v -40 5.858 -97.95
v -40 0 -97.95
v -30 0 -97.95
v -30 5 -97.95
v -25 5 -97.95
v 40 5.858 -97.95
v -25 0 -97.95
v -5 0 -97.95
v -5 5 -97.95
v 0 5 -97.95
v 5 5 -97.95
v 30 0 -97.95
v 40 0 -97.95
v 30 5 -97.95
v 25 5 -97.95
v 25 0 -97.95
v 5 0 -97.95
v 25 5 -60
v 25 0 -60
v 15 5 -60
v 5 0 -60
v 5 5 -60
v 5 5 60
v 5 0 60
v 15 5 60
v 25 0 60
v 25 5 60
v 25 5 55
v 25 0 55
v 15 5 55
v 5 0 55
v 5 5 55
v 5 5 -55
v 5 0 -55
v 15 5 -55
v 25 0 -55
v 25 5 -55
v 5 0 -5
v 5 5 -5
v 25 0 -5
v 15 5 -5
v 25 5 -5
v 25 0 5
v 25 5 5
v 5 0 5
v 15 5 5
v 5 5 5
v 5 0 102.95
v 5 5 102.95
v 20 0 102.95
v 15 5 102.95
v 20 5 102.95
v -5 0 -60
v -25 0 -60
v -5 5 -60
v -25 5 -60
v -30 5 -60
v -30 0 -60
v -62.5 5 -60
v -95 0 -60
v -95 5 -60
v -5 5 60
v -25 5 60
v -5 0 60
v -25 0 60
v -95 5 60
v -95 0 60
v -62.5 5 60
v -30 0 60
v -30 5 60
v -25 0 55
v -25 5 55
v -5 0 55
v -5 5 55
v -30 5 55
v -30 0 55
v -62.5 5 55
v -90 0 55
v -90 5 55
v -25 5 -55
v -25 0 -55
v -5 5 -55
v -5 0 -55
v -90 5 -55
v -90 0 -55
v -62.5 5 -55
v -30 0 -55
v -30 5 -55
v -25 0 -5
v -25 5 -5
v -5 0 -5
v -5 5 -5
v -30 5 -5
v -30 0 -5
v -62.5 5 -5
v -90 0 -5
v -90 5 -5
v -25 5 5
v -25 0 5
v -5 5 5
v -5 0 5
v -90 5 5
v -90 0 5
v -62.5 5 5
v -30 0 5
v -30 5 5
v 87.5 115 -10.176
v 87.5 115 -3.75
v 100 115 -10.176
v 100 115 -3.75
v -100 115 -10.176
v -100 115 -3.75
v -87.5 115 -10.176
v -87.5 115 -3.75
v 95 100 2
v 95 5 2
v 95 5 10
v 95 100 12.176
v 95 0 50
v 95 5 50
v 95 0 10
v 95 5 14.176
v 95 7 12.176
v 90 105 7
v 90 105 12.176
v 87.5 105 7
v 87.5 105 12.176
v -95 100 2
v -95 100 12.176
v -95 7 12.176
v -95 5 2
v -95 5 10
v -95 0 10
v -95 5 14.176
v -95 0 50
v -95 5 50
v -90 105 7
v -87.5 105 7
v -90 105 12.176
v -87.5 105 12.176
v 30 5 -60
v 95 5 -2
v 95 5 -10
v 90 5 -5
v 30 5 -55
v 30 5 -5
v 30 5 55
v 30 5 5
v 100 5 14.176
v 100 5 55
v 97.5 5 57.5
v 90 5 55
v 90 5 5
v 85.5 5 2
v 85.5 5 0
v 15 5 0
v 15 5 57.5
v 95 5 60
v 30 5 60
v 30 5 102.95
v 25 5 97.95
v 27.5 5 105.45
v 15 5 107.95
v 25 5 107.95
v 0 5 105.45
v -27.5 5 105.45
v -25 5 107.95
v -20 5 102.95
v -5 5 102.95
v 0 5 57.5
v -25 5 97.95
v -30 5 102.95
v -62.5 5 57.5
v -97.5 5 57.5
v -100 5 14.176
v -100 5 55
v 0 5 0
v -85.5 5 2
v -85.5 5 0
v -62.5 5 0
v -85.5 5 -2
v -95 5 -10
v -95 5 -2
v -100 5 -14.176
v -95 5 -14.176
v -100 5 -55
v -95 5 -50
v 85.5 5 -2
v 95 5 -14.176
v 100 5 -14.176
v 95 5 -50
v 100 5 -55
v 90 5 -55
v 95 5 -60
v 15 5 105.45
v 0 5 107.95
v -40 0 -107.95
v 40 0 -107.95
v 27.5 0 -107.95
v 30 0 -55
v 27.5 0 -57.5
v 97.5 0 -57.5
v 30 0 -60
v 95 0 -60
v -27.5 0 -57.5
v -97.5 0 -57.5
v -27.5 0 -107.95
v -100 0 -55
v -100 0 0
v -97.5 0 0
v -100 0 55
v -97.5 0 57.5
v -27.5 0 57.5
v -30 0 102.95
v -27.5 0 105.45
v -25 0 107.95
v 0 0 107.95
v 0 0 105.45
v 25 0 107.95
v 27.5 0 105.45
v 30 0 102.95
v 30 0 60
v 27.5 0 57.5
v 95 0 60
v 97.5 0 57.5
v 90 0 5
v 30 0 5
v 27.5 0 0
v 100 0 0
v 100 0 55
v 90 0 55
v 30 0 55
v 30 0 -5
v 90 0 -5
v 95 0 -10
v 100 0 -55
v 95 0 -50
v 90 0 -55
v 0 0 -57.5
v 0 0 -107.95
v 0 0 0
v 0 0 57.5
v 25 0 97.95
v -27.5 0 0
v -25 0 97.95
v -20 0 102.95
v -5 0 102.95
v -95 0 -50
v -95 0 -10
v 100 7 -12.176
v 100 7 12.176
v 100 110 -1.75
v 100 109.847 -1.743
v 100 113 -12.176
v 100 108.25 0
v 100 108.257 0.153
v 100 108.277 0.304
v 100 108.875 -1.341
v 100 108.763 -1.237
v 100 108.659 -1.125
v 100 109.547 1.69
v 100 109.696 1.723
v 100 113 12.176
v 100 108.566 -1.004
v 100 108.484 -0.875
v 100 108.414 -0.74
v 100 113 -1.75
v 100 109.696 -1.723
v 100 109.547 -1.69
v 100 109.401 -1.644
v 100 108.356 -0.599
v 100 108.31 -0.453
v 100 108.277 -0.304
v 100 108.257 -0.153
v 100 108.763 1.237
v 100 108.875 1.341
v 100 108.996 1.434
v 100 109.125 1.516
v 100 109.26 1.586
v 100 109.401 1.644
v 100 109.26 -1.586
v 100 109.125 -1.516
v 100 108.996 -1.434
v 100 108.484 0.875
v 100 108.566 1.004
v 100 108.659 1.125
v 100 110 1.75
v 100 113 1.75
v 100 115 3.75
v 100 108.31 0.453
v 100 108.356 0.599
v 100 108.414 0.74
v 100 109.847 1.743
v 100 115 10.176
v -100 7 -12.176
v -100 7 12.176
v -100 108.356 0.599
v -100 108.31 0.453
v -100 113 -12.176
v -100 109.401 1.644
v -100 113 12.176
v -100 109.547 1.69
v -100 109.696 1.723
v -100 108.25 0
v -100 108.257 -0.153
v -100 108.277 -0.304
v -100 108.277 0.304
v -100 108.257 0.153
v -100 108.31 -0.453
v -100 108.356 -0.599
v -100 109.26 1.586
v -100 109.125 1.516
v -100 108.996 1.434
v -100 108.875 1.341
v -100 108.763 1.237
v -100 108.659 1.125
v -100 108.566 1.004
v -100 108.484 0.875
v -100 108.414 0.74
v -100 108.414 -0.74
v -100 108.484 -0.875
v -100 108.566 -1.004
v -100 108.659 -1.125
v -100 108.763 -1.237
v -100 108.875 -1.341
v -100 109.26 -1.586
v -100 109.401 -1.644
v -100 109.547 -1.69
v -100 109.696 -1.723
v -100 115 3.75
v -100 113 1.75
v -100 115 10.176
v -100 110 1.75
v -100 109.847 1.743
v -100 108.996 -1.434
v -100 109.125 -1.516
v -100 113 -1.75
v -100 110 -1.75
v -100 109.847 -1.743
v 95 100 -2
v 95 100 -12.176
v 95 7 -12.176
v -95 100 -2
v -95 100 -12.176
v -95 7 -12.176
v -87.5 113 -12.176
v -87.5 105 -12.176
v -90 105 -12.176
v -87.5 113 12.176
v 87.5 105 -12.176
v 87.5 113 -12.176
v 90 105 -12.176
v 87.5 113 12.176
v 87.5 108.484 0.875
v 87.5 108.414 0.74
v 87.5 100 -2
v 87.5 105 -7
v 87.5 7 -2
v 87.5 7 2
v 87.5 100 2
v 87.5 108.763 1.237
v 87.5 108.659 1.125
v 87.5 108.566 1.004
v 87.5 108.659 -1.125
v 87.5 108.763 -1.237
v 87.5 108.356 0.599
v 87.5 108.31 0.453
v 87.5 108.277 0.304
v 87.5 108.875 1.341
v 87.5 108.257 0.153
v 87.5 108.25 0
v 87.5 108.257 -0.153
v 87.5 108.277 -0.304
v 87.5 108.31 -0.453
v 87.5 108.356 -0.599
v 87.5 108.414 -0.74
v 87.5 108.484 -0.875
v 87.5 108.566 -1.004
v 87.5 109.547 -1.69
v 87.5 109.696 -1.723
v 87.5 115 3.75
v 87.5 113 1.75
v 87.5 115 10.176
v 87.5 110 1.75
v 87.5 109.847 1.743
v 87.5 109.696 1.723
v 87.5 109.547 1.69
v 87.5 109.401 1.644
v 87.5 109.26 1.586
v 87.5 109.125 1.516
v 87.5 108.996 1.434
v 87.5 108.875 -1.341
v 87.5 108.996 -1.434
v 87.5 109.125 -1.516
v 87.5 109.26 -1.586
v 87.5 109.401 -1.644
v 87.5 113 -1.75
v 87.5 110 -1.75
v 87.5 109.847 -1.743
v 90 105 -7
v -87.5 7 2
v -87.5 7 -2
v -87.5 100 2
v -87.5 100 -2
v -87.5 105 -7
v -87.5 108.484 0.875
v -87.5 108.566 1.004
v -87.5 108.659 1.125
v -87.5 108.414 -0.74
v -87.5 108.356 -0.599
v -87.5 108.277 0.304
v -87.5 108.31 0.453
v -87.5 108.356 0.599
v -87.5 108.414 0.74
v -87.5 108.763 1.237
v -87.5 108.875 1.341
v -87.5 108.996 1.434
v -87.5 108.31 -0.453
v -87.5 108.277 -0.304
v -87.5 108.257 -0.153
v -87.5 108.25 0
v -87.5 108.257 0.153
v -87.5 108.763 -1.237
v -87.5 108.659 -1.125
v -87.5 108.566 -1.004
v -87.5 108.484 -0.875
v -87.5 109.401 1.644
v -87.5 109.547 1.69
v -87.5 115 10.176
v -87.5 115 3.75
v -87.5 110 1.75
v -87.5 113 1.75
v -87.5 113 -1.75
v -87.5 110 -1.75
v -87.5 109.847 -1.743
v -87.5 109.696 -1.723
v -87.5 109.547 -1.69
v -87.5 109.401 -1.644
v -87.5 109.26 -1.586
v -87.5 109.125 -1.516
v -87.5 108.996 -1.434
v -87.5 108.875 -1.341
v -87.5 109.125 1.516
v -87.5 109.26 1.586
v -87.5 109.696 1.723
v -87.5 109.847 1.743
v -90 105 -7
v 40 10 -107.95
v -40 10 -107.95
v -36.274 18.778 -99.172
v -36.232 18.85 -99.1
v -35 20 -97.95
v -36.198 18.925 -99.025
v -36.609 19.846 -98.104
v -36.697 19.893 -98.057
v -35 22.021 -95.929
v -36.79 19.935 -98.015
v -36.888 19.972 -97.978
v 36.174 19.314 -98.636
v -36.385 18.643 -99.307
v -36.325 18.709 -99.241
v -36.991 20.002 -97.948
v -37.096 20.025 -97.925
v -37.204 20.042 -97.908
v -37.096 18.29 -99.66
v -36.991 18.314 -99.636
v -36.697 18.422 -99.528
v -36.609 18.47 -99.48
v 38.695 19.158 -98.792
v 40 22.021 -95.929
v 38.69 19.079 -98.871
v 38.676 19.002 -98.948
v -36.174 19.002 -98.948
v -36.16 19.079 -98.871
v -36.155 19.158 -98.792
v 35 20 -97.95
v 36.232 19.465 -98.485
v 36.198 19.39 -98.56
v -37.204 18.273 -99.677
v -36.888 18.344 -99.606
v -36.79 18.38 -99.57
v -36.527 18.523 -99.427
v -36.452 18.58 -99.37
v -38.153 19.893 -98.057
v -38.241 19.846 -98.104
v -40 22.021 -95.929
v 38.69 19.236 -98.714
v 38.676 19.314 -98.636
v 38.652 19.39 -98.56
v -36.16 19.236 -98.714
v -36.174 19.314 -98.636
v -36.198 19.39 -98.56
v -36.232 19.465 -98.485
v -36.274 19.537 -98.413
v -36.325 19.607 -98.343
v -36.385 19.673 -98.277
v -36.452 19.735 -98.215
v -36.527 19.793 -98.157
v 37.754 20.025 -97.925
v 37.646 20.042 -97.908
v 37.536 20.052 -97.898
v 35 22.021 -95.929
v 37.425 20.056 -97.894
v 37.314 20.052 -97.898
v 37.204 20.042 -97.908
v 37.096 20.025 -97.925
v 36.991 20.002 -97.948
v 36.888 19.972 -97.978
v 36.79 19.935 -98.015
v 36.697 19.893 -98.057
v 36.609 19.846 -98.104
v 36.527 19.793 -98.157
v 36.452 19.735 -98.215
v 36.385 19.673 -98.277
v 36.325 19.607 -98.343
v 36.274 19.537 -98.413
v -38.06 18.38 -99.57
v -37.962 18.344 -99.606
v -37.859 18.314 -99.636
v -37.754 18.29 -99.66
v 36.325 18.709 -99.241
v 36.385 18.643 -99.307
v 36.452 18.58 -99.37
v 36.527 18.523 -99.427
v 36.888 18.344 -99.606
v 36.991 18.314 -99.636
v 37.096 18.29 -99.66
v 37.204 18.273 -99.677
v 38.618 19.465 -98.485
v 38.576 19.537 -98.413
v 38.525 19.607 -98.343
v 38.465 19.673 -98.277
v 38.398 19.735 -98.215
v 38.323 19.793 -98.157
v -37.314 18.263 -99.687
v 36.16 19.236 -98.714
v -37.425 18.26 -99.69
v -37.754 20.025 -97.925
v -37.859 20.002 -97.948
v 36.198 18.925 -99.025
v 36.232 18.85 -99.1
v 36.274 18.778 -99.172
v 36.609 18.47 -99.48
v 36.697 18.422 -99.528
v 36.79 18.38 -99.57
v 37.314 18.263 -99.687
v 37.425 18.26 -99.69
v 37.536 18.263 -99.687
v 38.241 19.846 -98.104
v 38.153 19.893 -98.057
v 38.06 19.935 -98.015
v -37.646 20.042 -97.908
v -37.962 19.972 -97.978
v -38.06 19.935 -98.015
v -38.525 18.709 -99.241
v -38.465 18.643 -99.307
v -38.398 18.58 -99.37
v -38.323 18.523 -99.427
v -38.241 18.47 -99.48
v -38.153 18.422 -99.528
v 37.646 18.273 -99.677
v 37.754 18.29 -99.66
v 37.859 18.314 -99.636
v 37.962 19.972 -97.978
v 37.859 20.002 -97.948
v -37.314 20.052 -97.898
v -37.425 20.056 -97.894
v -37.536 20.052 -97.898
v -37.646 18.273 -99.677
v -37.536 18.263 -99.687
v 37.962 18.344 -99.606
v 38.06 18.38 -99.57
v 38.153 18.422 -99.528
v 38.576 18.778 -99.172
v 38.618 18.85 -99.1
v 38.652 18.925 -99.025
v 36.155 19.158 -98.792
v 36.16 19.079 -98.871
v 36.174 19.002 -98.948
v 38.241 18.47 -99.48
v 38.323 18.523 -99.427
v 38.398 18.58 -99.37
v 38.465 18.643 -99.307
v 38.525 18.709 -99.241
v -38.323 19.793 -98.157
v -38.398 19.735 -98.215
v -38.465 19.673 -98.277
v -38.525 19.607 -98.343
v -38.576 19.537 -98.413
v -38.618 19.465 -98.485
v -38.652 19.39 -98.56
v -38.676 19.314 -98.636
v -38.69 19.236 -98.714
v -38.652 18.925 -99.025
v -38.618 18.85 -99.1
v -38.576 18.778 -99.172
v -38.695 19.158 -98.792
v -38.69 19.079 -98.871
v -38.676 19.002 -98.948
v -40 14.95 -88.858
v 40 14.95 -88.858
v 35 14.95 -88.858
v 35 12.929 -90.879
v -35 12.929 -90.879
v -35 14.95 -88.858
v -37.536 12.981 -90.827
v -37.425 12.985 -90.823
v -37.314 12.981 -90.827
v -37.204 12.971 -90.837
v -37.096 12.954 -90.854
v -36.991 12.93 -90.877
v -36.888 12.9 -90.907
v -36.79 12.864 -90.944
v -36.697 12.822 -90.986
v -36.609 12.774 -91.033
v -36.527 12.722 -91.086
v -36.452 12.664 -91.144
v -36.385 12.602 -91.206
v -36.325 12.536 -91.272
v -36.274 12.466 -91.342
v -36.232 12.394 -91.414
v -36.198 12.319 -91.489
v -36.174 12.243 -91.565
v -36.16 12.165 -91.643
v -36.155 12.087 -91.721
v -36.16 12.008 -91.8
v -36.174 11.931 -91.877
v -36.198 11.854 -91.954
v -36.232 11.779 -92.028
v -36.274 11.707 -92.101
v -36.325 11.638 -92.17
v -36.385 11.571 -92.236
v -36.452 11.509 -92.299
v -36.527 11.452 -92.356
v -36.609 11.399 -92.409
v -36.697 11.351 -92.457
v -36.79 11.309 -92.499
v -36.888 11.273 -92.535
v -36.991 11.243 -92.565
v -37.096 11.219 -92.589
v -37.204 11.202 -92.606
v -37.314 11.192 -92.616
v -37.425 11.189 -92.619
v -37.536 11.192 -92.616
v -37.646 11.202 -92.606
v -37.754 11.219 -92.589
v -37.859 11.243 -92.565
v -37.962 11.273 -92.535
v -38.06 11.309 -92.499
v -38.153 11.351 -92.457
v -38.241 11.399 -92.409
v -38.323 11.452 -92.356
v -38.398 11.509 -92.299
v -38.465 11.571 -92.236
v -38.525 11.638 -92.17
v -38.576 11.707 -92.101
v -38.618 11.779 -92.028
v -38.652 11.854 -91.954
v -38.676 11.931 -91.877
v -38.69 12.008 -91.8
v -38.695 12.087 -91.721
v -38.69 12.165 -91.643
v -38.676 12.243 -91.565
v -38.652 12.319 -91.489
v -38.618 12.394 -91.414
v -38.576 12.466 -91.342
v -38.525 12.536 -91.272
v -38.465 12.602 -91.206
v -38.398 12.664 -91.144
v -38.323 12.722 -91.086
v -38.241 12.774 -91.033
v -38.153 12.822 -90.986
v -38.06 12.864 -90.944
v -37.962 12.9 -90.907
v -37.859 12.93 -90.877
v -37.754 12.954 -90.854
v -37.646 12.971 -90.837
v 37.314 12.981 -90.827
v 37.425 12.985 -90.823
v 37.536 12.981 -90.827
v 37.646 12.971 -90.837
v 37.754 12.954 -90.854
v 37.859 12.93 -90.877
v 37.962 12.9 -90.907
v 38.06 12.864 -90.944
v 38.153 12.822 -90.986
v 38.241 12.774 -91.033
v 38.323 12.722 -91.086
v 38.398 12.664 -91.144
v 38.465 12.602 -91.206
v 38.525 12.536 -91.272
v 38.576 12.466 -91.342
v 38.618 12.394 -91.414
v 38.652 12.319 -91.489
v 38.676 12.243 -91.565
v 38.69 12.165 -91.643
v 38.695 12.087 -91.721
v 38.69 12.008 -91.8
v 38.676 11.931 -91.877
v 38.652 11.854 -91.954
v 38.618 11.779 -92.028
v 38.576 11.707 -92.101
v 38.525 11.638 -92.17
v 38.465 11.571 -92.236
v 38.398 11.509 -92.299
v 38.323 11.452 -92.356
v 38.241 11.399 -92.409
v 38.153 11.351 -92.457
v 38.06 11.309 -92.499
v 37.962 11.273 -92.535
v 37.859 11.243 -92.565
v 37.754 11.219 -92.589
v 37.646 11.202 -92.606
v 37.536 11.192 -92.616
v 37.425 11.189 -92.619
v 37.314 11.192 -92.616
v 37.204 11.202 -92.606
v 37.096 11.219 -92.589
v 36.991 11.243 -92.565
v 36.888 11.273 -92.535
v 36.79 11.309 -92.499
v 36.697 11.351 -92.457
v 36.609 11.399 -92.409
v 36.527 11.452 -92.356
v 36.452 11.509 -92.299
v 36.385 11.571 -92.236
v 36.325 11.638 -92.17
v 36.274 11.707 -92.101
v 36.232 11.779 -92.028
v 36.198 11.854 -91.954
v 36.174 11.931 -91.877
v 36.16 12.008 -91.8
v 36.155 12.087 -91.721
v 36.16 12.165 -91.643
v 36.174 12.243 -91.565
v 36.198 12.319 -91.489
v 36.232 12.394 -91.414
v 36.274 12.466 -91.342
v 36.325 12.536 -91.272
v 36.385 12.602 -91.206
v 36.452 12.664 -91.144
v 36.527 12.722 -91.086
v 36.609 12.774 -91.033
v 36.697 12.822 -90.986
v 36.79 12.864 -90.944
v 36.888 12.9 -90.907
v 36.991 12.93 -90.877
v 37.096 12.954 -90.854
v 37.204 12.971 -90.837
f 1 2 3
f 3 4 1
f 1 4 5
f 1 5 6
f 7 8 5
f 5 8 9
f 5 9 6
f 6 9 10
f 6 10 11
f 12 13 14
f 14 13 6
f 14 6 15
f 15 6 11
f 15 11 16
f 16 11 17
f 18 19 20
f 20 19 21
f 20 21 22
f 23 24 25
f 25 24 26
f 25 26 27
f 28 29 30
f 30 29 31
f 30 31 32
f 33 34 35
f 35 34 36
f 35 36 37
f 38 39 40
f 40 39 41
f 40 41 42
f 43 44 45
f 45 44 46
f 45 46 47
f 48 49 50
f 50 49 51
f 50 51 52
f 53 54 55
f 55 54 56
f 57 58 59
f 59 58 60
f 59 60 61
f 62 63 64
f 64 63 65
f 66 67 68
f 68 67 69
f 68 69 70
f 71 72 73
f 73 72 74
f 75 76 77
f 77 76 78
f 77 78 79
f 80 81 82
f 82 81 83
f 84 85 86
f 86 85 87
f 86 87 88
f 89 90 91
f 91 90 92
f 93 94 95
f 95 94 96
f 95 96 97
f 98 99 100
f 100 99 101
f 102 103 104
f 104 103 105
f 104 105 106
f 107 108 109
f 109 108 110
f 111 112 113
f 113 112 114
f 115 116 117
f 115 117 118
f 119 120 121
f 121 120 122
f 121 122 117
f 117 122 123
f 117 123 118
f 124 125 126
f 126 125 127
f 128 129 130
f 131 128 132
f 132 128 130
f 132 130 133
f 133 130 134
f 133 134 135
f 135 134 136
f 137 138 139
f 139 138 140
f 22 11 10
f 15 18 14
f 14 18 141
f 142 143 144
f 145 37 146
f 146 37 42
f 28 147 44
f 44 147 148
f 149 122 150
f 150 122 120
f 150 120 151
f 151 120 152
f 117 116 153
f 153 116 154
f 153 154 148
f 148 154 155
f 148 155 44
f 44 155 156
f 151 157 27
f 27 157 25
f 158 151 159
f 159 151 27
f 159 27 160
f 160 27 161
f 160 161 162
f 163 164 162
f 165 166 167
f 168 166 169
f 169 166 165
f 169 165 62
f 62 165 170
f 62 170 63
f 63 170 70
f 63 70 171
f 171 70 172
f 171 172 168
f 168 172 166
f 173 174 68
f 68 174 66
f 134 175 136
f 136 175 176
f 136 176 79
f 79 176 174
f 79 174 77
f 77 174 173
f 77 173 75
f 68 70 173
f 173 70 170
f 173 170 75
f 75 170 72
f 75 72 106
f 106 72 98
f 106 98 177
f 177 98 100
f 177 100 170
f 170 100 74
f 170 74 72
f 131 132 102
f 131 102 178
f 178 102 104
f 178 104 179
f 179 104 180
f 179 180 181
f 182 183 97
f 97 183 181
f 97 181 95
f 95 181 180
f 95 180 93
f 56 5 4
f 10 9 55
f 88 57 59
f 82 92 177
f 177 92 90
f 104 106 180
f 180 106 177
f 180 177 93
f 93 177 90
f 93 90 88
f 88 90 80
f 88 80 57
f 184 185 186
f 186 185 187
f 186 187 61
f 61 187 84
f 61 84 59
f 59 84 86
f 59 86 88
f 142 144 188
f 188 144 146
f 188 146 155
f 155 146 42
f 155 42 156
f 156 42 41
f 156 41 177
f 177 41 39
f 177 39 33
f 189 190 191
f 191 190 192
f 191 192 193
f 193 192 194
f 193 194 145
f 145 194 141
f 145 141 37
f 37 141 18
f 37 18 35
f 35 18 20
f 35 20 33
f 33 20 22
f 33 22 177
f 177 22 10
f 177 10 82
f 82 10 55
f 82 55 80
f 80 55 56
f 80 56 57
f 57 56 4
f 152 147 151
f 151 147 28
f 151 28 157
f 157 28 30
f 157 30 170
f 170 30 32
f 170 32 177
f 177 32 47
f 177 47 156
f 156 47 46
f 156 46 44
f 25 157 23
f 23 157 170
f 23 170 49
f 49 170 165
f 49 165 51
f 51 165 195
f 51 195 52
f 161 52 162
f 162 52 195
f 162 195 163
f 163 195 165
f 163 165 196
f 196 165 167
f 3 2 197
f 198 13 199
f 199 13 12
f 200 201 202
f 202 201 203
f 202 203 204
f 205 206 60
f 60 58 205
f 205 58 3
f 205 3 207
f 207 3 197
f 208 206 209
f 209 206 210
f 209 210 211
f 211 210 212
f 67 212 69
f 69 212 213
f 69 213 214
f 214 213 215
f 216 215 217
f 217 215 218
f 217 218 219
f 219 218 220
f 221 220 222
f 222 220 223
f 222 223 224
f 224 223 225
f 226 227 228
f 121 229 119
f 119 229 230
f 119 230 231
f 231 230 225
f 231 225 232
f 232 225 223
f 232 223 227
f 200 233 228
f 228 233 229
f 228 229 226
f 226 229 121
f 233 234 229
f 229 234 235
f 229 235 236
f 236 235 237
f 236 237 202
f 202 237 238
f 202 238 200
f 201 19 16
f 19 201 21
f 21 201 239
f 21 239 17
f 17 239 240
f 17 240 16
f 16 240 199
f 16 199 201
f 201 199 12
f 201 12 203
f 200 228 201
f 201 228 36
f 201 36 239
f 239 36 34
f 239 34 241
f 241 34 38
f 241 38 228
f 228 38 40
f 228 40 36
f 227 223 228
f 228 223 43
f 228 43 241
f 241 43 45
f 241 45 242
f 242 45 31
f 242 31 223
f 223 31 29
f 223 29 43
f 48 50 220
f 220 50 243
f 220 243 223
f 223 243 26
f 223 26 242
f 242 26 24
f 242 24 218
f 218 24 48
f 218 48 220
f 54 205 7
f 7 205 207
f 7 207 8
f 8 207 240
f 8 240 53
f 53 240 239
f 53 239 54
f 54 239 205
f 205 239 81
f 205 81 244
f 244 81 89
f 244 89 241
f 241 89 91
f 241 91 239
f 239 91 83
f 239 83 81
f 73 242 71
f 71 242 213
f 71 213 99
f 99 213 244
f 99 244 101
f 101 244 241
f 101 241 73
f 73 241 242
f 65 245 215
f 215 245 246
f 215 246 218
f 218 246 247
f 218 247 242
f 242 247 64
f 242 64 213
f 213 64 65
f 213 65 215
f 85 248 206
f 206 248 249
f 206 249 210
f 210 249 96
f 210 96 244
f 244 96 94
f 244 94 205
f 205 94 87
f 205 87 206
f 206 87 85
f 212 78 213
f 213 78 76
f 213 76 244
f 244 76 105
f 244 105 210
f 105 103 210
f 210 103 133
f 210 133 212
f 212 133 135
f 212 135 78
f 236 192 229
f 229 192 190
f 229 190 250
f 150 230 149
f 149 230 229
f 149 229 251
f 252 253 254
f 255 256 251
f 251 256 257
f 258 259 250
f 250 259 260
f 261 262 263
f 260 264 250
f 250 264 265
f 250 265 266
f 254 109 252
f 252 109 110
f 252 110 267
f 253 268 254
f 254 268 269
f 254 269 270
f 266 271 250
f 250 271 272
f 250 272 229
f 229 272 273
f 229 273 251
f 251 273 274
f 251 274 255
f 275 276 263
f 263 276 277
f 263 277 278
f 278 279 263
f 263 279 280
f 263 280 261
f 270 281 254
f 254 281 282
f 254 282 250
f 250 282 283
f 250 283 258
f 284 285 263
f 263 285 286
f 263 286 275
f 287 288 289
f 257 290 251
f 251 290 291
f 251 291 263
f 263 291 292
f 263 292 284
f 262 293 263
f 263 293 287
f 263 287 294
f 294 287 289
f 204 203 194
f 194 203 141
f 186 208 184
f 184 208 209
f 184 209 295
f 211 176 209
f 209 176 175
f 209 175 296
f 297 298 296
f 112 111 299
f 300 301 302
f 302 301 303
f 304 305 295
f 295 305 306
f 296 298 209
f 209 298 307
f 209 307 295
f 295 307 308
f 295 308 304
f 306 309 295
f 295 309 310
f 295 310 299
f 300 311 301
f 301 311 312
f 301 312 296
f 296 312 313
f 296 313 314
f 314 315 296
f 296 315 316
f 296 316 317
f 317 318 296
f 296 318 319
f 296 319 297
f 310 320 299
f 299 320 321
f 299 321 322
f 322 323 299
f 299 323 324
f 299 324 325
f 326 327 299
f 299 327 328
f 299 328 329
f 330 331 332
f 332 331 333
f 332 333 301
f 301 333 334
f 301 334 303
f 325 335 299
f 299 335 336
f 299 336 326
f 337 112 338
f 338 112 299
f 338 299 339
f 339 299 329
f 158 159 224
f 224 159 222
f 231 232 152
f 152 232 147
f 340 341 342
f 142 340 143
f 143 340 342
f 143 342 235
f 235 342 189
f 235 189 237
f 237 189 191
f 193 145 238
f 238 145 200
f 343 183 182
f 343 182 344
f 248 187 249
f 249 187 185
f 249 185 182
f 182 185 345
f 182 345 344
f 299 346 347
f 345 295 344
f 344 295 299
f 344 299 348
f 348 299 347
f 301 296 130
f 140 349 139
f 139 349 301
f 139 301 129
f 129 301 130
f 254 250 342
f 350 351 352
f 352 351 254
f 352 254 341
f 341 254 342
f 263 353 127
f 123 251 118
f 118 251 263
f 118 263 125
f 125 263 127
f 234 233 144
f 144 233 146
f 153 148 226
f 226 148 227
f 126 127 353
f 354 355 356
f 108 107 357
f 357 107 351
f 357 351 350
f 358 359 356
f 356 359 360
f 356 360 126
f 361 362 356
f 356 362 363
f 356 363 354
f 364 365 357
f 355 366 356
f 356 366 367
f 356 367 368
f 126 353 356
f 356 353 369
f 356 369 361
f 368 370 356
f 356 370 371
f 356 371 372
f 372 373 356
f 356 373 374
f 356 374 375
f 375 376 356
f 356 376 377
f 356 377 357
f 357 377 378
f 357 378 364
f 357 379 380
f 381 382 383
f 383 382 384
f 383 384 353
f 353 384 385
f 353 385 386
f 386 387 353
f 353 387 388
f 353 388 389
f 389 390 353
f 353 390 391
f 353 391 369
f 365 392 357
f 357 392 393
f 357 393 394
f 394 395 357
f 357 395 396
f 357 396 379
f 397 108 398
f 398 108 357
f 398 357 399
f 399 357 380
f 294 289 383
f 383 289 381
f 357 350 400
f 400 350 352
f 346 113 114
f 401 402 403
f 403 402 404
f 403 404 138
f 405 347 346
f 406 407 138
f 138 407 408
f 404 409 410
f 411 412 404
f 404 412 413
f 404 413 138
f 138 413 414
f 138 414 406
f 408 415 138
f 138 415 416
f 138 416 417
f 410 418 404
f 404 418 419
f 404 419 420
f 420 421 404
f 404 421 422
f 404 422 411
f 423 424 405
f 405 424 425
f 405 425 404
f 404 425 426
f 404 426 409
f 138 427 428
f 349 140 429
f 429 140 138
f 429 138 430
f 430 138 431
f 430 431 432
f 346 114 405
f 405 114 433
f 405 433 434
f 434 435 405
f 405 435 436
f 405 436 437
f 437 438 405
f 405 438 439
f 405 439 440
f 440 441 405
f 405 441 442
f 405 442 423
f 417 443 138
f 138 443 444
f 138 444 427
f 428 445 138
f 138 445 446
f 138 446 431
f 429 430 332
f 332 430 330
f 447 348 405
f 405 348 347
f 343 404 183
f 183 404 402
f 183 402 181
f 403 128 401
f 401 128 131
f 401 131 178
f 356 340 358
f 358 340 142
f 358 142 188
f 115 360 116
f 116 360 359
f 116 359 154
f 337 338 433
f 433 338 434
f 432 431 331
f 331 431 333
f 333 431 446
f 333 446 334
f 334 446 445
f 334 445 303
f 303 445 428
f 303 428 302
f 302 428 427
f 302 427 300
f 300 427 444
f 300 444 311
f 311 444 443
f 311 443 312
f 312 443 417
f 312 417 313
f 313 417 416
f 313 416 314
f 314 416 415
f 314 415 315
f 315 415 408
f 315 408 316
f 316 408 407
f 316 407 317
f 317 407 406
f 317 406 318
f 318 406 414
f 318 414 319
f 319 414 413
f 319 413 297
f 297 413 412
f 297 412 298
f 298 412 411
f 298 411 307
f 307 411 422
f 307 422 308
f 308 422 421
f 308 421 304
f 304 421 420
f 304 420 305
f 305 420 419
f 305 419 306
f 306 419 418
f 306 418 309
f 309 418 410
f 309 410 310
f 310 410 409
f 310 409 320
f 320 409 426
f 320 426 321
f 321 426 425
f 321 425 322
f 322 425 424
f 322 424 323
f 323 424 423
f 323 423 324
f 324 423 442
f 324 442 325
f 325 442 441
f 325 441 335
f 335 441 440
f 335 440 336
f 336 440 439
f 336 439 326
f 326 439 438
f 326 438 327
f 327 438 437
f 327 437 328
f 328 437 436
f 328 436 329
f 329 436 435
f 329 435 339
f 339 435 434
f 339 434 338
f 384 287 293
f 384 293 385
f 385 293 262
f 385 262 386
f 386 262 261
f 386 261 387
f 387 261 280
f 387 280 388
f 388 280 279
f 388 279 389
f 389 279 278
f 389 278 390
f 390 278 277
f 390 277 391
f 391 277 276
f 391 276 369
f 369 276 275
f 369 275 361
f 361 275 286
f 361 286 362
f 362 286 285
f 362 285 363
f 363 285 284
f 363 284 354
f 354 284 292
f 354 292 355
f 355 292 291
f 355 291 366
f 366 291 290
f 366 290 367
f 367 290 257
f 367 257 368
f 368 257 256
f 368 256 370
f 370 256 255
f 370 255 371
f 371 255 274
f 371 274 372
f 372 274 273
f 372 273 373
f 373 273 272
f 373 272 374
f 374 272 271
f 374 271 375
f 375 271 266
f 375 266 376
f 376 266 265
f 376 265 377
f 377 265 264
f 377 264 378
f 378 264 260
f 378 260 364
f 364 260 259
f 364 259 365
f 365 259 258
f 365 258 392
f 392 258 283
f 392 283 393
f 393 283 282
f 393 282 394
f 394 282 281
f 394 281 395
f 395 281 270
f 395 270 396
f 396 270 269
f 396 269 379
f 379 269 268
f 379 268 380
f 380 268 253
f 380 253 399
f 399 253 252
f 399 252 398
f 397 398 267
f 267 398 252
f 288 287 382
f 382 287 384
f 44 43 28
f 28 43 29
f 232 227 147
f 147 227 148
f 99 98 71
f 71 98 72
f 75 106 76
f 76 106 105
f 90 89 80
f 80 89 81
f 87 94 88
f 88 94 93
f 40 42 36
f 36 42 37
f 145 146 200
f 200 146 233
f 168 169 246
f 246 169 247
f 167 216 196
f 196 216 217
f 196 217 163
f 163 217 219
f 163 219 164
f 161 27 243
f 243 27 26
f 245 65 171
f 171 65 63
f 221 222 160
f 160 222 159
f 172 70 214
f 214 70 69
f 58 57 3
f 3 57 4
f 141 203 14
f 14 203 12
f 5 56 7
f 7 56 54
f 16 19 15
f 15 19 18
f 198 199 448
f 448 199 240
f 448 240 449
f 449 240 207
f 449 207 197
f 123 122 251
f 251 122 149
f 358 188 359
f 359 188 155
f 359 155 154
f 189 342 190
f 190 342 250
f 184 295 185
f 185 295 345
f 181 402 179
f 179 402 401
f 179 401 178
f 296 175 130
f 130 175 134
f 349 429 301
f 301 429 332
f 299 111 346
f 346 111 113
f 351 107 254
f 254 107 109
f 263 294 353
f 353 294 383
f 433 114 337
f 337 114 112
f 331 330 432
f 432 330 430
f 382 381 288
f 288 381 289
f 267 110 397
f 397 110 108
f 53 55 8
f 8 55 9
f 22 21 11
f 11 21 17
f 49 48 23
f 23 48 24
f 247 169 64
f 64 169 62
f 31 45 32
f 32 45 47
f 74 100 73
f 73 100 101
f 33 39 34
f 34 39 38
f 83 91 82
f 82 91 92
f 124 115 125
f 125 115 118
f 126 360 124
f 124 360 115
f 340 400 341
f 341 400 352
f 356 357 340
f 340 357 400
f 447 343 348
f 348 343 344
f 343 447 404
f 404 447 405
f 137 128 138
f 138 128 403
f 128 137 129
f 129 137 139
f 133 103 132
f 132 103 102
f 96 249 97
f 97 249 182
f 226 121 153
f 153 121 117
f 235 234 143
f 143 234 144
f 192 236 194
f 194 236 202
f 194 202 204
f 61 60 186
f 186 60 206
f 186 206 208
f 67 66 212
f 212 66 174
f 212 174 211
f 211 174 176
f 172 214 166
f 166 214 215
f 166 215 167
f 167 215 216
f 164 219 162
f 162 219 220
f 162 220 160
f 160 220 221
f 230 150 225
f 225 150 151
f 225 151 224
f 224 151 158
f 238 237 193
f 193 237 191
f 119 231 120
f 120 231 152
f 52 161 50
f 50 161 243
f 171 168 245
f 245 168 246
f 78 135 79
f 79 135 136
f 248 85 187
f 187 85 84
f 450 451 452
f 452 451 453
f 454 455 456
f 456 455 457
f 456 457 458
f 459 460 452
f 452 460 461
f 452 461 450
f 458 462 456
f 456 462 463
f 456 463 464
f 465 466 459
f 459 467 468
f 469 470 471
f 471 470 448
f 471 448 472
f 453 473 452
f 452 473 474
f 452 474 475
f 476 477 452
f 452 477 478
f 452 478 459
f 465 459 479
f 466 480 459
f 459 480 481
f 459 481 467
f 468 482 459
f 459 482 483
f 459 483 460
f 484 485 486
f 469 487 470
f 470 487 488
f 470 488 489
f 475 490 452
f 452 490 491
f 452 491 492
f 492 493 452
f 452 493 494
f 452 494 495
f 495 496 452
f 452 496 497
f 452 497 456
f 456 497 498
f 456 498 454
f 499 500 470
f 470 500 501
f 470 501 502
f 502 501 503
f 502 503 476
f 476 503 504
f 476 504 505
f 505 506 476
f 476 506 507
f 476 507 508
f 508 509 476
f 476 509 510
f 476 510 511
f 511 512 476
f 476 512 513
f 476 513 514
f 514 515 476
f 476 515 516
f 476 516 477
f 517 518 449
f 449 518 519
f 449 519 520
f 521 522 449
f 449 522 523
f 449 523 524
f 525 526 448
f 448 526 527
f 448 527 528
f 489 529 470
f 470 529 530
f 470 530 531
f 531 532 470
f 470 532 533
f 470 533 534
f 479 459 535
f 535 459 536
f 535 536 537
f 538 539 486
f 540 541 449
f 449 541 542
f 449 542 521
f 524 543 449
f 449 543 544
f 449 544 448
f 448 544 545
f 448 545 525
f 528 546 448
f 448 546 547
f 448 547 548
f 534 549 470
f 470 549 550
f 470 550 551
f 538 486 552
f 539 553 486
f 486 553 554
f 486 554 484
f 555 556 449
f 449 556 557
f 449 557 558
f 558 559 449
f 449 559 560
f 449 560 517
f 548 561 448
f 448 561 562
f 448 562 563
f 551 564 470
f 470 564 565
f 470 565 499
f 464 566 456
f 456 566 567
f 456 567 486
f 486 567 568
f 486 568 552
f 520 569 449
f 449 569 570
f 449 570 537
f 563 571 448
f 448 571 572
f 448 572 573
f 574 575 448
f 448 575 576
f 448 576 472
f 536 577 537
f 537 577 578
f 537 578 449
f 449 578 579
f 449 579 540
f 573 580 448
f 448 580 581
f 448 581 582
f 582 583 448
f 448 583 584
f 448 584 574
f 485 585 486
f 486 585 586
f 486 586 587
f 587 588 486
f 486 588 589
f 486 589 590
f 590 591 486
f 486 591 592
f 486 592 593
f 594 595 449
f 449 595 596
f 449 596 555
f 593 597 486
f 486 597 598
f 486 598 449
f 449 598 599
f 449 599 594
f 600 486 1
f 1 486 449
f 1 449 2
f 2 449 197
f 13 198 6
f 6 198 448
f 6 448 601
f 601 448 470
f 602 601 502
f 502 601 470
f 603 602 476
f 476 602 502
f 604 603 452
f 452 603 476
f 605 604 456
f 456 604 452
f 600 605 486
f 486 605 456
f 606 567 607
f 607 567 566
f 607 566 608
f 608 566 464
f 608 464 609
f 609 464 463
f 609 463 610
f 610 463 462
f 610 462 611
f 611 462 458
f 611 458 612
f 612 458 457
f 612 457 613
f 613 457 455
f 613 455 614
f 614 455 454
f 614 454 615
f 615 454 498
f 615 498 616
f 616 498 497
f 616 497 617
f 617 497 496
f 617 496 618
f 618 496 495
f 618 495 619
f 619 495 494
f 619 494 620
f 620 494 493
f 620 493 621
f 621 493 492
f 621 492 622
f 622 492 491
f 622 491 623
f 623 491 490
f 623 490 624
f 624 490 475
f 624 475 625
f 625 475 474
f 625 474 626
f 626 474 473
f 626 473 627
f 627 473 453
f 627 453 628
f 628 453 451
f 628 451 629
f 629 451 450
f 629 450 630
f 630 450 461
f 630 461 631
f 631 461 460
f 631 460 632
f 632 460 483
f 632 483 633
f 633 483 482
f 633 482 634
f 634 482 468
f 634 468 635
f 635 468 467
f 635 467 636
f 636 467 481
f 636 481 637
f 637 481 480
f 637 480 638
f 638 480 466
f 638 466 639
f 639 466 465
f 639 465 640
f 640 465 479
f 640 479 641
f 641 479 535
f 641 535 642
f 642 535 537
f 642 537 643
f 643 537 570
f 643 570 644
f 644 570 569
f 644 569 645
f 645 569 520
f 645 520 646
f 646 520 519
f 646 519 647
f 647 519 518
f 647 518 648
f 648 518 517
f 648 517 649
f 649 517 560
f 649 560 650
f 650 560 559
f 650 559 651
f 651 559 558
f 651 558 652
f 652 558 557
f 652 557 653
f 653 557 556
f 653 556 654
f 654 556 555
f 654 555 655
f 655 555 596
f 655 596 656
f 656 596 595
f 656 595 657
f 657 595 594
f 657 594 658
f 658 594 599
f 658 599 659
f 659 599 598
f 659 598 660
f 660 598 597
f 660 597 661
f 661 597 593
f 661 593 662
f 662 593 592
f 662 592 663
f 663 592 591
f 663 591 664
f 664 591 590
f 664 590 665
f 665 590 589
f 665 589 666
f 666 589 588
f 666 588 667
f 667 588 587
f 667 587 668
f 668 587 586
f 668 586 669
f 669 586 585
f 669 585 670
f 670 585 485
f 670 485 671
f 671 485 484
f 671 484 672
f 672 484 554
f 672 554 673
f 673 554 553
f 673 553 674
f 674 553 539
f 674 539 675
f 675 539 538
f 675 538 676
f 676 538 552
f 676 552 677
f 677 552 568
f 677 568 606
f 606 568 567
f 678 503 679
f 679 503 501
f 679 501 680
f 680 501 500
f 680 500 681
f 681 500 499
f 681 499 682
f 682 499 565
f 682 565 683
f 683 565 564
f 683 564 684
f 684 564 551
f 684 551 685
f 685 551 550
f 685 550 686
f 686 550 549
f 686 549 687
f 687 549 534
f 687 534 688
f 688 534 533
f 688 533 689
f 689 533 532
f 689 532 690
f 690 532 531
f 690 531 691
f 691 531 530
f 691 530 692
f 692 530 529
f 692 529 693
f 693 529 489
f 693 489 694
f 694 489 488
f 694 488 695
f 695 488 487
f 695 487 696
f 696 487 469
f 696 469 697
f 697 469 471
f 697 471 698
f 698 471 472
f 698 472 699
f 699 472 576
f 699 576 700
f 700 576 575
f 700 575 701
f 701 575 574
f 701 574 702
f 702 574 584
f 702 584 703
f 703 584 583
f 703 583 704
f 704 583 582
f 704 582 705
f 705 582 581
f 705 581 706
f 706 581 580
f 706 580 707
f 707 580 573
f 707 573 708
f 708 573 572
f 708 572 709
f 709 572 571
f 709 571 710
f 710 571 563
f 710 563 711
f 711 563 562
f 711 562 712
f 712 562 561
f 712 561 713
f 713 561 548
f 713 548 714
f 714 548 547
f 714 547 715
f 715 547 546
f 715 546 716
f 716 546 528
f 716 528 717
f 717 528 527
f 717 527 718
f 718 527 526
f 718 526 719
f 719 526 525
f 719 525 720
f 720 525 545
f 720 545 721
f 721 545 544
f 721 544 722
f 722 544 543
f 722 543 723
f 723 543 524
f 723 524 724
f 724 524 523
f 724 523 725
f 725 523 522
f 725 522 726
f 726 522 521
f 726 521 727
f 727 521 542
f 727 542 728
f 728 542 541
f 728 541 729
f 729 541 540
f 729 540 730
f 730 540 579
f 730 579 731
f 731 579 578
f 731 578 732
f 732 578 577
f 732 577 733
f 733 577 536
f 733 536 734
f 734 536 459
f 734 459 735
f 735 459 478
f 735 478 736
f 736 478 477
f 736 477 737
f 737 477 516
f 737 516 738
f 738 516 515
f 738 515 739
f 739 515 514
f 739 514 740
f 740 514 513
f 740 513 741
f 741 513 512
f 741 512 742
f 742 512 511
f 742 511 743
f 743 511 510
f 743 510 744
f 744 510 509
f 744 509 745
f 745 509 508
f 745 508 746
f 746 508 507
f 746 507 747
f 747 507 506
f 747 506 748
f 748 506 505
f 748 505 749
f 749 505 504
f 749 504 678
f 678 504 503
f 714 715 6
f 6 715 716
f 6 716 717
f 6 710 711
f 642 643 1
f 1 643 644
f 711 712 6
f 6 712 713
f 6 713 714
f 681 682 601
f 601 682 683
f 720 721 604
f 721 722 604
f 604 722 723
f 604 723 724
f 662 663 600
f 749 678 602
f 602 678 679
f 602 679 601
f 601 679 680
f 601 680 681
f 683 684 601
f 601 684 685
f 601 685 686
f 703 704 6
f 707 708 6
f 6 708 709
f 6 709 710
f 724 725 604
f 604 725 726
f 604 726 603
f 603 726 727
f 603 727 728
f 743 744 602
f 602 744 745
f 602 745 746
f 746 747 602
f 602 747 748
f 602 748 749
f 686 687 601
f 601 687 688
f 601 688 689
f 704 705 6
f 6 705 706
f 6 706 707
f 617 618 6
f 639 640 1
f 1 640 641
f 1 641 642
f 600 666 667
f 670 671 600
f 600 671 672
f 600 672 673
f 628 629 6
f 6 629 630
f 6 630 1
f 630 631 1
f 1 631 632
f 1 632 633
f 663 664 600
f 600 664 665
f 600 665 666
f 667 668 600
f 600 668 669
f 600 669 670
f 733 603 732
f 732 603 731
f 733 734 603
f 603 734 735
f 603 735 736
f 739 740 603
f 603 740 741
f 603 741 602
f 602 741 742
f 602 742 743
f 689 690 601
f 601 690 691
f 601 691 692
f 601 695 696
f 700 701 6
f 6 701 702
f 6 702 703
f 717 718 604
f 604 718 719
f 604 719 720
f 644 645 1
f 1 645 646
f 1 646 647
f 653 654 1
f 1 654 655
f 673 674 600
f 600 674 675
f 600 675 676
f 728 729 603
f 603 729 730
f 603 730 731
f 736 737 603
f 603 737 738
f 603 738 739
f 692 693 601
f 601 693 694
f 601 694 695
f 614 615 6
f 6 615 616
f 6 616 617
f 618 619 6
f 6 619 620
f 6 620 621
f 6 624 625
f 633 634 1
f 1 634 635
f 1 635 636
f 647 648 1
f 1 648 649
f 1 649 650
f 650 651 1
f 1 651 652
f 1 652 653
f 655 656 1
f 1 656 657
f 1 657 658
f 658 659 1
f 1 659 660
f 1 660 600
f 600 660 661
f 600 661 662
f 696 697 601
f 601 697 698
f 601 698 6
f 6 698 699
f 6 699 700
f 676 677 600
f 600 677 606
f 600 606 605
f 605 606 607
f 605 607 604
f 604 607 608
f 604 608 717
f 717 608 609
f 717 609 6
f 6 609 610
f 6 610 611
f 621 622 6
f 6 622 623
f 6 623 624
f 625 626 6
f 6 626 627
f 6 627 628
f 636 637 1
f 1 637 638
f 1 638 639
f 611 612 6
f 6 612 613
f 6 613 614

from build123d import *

# Parameters (mm, degrees)
SKETCH1_W                = 200
SKETCH1_H                = 120
SKETCH1_W_2              = 190
SKETCH1_H_2              = 110
BOSS_EXTRUDE1_DEPTH      = 5
SKETCH2_W                = 5
SKETCH2_H                = 24.351612872
BOSS_EXTRUDE2_DEPTH      = 100
SKETCH3_W                = 190
SKETCH3_H                = 10
BOSS_EXTRUDE3_DEPTH      = 5
SKETCH4_W                = 12.5
SKETCH4_H                = 24.351612872
BOSS_EXTRUDE4_DEPTH      = 10
BOSS_EXTRUDE5_DEPTH      = 2
BOSS_EXTRUDE5_DEPTH_BACK = 2
SKETCH5_W                = 7.5
SKETCH5_H                = 100
CUT_EXTRUDE1_DEPTH       = 239.379948821
SKETCH7_W                = 60
SKETCH7_H                = 215.9
SKETCH7_W_2              = 50
SKETCH7_H_2              = 205.9
BOSS_EXTRUDE6_DEPTH      = 5
CHAMFER1_SIZE            = 2
SKETCH8_W                = 10
SKETCH8_H                = 205.9
BOSS_EXTRUDE7_DEPTH      = 5
CHAMFER2_SIZE            = 5
BOSS_EXTRUDE8_DEPTH      = 40
BOSS_EXTRUDE8_DEPTH_BACK = 40
SKETCH9_W                = 10
SKETCH9_H                = 5
SKETCH10_W               = 35
SKETCH10_H               = 14.142135624
SKETCH10_R               = 1.27
BOSS_EXTRUDE9_DEPTH      = 10
SKETCH12_R               = 1.27
CUT_EXTRUDE2_DEPTH       = 199.832576328


with BuildPart() as part:
    # Sketch1 → Boss-Extrude1 (new body)
    with BuildSketch(Plane(origin=(0, 0, 0), x_dir=(1, 0, 0), z_dir=(0, 1, 0))):
        Rectangle(SKETCH1_W, SKETCH1_H)
        Rectangle(SKETCH1_W_2, SKETCH1_H_2, mode=Mode.SUBTRACT)
    extrude(amount=BOSS_EXTRUDE1_DEPTH)

    # Sketch2 → Boss-Extrude2 (add)
    with BuildSketch(Plane(origin=(0, 5, 0), x_dir=(1, 0, 0), z_dir=(0, 1, 0))):
        with Locations((-97.5, 0)):
            Rectangle(SKETCH2_W, SKETCH2_H)
        with Locations((97.5, 0)):
            Rectangle(SKETCH2_W, SKETCH2_H)
    extrude(amount=BOSS_EXTRUDE2_DEPTH)

    # Sketch3 → Boss-Extrude3 (add)
    with BuildSketch(Plane.XZ):
        Rectangle(SKETCH3_W, SKETCH3_H)
    extrude(amount=-BOSS_EXTRUDE3_DEPTH)

    # Sketch4 → Boss-Extrude4 (add)
    with BuildSketch(Plane(origin=(0, 105, 0), x_dir=(1, 0, 0), z_dir=(0, 1, 0))):
        with Locations((93.75, 0)):
            Rectangle(SKETCH4_W, SKETCH4_H)
        with Locations((-93.75, 0)):
            Rectangle(SKETCH4_W, SKETCH4_H)
    extrude(amount=BOSS_EXTRUDE4_DEPTH)

    # Sketch5 → Boss-Extrude5 (add, two sides: drawn at the far end of the back side and taken through both)
    with BuildSketch(Plane.XY.offset(-BOSS_EXTRUDE5_DEPTH_BACK)):
        with Locations((-91.25, 55)):
            Rectangle(SKETCH5_W, SKETCH5_H)
        with Locations((91.25, 55)):
            Rectangle(SKETCH5_W, SKETCH5_H)
    extrude(amount=BOSS_EXTRUDE5_DEPTH + BOSS_EXTRUDE5_DEPTH_BACK)

    # Sketch6 → Cut-Extrude1 (cut, through all)
    with BuildSketch(Plane(origin=(100, 0, 0), x_dir=(0, 0, -1), z_dir=(1, 0, 0))):
        with BuildLine():
            Line((1.75, 120), (1.75, 110))
            ThreePointArc((1.75, 110), (0, 108.25), (-1.75, 110))
            Line((-1.75, 110), (-1.75, 120))
            ThreePointArc((-1.75, 120), (0, 121.75), (1.75, 120))
        make_face()
    extrude(amount=-CUT_EXTRUDE1_DEPTH, mode=Mode.SUBTRACT)

    # Sketch7 → Boss-Extrude6 (add)
    with BuildSketch(Plane(origin=(0, 5, 0), x_dir=(1, 0, 0), z_dir=(0, 1, 0))):
        Rectangle(SKETCH7_W, SKETCH7_H)
        Rectangle(SKETCH7_W_2, SKETCH7_H_2, mode=Mode.SUBTRACT)
    extrude(amount=-BOSS_EXTRUDE6_DEPTH)

    # Chamfer1
    chamfer1_edges = [part.edges().sort_by_distance(p)[0] for p in [
        (-93.75, 115, -1.75),
        (-93.75, 115, 1.75),
        (93.75, 115, 1.75),
        (93.75, 115, -1.75),
        (97.5, 5, 12.175806436),
        (87.5, 5, 0),
        (97.5, 5, -12.175806436),
        (-97.5, 5, -12.175806436),
        (-87.5, 5, 0),
        (-97.5, 5, 12.175806436),
        (-93.75, 115, 12.175806436),
        (-93.75, 115, -12.175806436),
        (93.75, 115, -12.175806436),
        (93.75, 115, 12.175806436),
    ]]
    chamfer(chamfer1_edges, length=CHAMFER1_SIZE)

    # Sketch8 → Boss-Extrude7 (add)
    with BuildSketch(Plane(origin=(0, 5, 0), x_dir=(1, 0, 0), z_dir=(0, 1, 0))):
        Rectangle(SKETCH8_W, SKETCH8_H)
    extrude(amount=-BOSS_EXTRUDE7_DEPTH)

    # Chamfer2
    chamfer2_edges = [part.edges().sort_by_distance(p)[0] for p in [
        (-95, 105, -7.087903218),
        (-91.25, 105, -2),
        (-91.25, 105, 2),
        (95, 105, 7.087903218),
        (91.25, 105, -2),
        (91.25, 105, 2),
        (-95, 2.5, 55),
        (95, 2.5, 55),
        (95, 2.5, -55),
        (-95, 2.5, -55),
        (-30, 2.5, 107.95),
        (30, 2.5, -107.95),
        (-25, 2.5, -102.95),
        (25, 2.5, 102.95),
        (-30, 2.5, -107.95),
        (30, 2.5, 107.95),
        (-25, 2.5, 102.95),
        (25, 2.5, -102.95),
        (-95, 105, 7.087903218),
        (95, 105, -7.087903218),
        (95, 2.5, 5),
        (95, 2.5, -5),
        (-95, 2.5, -5),
        (-95, 2.5, 5),
        (100, 2.5, 60),
        (-100, 2.5, 60),
        (-100, 2.5, -60),
        (100, 2.5, -60),
    ]]
    chamfer(chamfer2_edges, length=CHAMFER2_SIZE)

    # Sketch9 → Boss-Extrude8 (add, two sides: drawn at the far end of the back side and taken through both)
    with BuildSketch(Plane(origin=(0, 0, 0), x_dir=(0, 0, -1), z_dir=(1, 0, 0)).offset(-BOSS_EXTRUDE8_DEPTH_BACK)):
        Polygon((97.95, 5), (107.95, 5), (107.95, 10), (97.95, 20), align=None)
        with Locations((102.95, 2.5)):
            Rectangle(SKETCH9_W, SKETCH9_H)
    extrude(amount=BOSS_EXTRUDE8_DEPTH + BOSS_EXTRUDE8_DEPTH_BACK)

    # Sketch10 → Boss-Extrude9 (add)
    # profile 1 of 4: a face of its own
    with BuildSketch(Plane(origin=(0, 58.975, -58.975), x_dir=(1, 0, 0), z_dir=(0, 0.7071067811865489, -0.7071067811865461))):
        with Locations((-17.5, 62.190041405)):
            Rectangle(SKETCH10_W, SKETCH10_H)
    # profile 2 of 4: a face of its own
    with BuildSketch(Plane(origin=(0, 58.975, -58.975), x_dir=(1, 0, 0), z_dir=(0, 0.7071067811865489, -0.7071067811865461))):
        with Locations((17.5, 62.190041405)):
            Rectangle(SKETCH10_W, SKETCH10_H)
    # profile 3 of 4: a face of its own
    with BuildSketch(Plane(origin=(0, 58.975, -58.975), x_dir=(1, 0, 0), z_dir=(0, 0.7071067811865489, -0.7071067811865461))):
        Polygon((35, 69.261109217), (35, 55.118973593), (35, 52.261109217), (40, 52.261109217), (40, 69.261109217), align=None)
        with Locations(Location((37.425, 56.310241705, 0), (0, 0, 270))):
            Circle(SKETCH10_R, mode=Mode.SUBTRACT)
    # profile 4 of 4: a face of its own
    with BuildSketch(Plane(origin=(0, 58.975, -58.975), x_dir=(1, 0, 0), z_dir=(0, 0.7071067811865489, -0.7071067811865461))):
        Polygon((-35, 52.261109217), (-35, 55.118973593), (-35, 69.261109217), (-40, 69.261109217), (-40, 52.261109217), align=None)
        with Locations(Location((-37.425, 56.310241705, 0), (0, 0, 270))):
            Circle(SKETCH10_R, mode=Mode.SUBTRACT)
    extrude(amount=-BOSS_EXTRUDE9_DEPTH)

    # Sketch12 → Cut-Extrude2 (cut, through all)
    with BuildSketch(Plane(origin=(0, 51.903932188, -51.903932188), x_dir=(1, 0, 0), z_dir=(0, -0.7071067811865488, 0.7071067811865464))):
        with Locations(Location((37.425, -56.310241705, 0), (0, 0, 90.000000005))):
            Circle(SKETCH12_R)
        with Locations(Location((-37.425, -56.310241705, 0), (0, 0, 89.999999995))):
            Circle(SKETCH12_R)
    extrude(amount=-CUT_EXTRUDE2_DEPTH, mode=Mode.SUBTRACT)


solid = part.part
